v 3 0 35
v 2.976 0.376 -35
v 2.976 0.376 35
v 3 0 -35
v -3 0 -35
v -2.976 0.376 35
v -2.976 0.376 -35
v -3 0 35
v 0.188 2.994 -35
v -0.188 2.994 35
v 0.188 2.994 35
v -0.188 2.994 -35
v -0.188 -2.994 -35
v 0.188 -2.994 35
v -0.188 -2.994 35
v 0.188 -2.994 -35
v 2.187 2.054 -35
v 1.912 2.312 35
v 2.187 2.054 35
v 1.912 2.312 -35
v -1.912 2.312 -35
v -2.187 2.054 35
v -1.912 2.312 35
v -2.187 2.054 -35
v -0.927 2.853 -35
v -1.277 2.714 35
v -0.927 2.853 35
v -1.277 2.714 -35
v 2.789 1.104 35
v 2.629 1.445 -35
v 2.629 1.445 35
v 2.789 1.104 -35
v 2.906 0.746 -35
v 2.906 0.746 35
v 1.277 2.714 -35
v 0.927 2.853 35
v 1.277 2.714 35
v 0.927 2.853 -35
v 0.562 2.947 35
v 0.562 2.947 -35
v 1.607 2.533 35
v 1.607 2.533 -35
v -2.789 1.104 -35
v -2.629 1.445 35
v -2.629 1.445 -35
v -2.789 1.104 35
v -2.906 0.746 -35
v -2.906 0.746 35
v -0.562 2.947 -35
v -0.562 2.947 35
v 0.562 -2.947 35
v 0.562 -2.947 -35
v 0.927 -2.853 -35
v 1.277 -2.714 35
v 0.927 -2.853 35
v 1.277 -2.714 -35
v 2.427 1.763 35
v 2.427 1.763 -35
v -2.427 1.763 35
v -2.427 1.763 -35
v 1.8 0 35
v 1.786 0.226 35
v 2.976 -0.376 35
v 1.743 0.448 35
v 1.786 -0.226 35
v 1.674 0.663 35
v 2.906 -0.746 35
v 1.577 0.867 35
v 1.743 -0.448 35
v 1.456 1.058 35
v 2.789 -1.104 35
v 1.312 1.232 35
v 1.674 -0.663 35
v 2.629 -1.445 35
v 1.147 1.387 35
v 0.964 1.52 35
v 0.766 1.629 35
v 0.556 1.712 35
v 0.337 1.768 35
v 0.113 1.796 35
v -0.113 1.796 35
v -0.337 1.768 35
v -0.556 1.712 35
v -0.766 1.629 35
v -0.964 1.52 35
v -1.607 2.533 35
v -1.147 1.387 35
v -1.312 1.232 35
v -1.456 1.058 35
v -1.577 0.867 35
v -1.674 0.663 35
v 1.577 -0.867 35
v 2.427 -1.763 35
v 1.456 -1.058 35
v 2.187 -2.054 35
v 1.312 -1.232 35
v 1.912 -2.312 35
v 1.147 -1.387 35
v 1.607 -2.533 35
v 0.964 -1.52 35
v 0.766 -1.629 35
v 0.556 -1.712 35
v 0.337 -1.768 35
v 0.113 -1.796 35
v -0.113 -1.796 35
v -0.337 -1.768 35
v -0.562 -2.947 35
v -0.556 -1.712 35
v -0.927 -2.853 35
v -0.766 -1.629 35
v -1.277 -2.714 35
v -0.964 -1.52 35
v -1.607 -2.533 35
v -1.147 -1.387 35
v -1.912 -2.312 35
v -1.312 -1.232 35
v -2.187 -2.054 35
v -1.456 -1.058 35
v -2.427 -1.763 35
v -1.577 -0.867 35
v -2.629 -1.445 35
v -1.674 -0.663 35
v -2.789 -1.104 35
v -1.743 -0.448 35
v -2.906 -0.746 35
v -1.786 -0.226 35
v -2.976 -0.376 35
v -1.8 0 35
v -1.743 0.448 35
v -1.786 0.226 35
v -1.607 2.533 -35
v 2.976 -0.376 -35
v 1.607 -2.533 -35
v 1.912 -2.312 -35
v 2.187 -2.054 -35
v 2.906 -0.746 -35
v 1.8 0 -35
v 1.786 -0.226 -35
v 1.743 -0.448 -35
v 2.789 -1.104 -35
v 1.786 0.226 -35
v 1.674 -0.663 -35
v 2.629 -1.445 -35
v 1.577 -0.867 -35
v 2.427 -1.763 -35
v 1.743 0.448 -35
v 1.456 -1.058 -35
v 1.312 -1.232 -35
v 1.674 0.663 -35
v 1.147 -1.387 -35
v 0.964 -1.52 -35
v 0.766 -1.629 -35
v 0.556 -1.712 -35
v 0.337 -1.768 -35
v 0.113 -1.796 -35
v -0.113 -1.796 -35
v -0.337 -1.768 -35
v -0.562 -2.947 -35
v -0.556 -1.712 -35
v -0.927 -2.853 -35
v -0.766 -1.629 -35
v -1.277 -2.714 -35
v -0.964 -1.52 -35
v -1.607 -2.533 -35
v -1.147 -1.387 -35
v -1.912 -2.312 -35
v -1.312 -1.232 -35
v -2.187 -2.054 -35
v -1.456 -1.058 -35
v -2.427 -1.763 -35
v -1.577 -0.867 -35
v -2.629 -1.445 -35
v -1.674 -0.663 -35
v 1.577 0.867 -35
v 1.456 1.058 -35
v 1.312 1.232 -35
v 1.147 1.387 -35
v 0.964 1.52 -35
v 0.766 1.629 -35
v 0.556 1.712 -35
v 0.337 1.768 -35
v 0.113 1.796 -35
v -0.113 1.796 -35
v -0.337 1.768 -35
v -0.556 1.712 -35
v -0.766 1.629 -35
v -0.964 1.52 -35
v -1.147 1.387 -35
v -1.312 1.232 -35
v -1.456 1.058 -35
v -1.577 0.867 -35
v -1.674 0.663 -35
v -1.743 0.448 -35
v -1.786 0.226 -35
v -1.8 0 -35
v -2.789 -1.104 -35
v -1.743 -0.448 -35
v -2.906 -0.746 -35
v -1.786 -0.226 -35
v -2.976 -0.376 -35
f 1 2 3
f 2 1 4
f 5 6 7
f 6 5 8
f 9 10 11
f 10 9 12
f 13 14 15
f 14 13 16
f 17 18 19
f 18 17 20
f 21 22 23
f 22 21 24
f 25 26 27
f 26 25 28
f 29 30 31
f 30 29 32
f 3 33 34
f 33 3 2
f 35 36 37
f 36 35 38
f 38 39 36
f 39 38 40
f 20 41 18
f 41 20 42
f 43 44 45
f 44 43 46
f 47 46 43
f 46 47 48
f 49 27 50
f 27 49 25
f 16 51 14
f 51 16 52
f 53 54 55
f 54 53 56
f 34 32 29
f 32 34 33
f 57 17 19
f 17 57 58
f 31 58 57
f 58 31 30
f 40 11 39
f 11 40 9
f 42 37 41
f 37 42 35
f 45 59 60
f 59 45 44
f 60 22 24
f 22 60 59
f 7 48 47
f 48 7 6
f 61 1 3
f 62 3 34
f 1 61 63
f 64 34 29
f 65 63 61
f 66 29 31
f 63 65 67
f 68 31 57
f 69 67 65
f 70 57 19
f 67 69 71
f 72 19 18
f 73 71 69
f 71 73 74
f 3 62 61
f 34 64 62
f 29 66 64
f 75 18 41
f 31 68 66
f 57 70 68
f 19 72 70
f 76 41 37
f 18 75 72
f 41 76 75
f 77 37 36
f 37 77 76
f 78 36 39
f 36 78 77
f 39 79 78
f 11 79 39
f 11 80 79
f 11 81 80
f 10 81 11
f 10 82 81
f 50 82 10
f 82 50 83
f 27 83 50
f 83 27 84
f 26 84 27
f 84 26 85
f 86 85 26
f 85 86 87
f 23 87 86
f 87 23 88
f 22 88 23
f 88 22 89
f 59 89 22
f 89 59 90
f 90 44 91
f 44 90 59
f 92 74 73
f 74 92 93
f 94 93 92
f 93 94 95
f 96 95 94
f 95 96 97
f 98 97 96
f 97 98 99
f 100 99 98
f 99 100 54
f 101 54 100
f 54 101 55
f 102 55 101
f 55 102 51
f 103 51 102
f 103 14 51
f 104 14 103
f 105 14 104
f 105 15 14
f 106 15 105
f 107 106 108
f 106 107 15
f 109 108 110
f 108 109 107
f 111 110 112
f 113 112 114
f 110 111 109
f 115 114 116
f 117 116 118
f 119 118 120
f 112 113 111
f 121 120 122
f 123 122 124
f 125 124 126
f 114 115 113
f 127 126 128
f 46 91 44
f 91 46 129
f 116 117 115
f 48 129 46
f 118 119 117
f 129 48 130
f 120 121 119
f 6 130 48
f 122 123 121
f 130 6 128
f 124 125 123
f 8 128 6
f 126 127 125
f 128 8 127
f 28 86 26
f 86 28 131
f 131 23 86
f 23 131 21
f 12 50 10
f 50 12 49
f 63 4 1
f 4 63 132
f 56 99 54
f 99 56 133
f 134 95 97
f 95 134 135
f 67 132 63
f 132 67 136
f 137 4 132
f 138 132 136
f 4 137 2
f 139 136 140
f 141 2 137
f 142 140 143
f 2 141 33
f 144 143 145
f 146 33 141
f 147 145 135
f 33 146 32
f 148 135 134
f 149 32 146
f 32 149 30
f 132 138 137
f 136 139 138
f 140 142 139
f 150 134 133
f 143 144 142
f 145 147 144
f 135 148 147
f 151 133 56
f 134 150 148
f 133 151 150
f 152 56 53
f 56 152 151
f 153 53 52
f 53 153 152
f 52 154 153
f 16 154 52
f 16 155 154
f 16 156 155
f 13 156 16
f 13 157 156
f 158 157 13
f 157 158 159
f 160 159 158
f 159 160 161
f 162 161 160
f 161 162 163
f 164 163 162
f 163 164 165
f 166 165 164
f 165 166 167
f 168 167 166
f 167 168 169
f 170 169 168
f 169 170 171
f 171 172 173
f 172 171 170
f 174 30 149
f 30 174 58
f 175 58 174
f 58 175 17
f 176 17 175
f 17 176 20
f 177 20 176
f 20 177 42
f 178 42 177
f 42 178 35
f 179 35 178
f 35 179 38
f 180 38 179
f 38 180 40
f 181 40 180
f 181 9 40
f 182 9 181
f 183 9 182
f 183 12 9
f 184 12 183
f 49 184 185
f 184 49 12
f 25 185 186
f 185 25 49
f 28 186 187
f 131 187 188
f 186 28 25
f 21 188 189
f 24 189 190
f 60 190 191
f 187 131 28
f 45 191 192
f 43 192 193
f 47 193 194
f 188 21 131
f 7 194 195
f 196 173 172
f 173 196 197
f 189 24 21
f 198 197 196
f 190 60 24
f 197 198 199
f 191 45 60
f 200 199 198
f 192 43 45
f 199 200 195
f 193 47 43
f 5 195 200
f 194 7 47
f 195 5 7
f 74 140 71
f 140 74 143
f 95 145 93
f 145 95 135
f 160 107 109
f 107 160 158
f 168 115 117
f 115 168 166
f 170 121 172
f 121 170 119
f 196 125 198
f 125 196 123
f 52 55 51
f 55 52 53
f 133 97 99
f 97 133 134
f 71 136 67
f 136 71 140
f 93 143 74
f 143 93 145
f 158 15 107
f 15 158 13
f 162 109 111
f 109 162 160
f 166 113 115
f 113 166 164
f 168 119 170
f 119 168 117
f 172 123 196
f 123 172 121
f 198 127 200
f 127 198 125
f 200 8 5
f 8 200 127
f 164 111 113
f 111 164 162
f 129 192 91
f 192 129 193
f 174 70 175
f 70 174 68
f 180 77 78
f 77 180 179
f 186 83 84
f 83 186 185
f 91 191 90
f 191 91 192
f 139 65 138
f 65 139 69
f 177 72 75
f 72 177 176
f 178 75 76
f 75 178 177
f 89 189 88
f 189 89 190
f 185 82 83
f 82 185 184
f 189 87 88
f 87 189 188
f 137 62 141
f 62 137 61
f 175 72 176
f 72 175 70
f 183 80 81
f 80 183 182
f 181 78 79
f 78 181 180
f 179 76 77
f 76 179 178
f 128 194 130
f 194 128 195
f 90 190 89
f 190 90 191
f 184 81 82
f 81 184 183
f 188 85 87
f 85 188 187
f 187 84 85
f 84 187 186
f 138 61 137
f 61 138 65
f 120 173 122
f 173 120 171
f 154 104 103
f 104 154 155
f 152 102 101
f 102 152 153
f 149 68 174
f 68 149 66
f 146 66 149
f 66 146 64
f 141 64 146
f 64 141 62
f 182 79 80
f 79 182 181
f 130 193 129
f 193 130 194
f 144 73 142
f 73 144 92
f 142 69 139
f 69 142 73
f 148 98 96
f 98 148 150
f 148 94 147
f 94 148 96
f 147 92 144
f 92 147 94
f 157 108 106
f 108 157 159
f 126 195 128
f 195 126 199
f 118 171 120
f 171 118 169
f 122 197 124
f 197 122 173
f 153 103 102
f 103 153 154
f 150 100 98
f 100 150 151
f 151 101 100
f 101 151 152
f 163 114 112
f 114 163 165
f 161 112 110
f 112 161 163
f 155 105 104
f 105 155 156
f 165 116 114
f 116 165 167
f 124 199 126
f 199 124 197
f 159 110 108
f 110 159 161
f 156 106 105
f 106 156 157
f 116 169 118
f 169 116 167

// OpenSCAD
$fn = 50;


difference() {
	union() {
		translate(v = [0, 0, -35.0000000000]) {
			cylinder(h = 70, r = 3.0000000000);
		}
	}
	union() {
		translate(v = [0, 0, -100.0000000000]) {
			cylinder(h = 200, r = 1.8000000000);
		}
	}
}
